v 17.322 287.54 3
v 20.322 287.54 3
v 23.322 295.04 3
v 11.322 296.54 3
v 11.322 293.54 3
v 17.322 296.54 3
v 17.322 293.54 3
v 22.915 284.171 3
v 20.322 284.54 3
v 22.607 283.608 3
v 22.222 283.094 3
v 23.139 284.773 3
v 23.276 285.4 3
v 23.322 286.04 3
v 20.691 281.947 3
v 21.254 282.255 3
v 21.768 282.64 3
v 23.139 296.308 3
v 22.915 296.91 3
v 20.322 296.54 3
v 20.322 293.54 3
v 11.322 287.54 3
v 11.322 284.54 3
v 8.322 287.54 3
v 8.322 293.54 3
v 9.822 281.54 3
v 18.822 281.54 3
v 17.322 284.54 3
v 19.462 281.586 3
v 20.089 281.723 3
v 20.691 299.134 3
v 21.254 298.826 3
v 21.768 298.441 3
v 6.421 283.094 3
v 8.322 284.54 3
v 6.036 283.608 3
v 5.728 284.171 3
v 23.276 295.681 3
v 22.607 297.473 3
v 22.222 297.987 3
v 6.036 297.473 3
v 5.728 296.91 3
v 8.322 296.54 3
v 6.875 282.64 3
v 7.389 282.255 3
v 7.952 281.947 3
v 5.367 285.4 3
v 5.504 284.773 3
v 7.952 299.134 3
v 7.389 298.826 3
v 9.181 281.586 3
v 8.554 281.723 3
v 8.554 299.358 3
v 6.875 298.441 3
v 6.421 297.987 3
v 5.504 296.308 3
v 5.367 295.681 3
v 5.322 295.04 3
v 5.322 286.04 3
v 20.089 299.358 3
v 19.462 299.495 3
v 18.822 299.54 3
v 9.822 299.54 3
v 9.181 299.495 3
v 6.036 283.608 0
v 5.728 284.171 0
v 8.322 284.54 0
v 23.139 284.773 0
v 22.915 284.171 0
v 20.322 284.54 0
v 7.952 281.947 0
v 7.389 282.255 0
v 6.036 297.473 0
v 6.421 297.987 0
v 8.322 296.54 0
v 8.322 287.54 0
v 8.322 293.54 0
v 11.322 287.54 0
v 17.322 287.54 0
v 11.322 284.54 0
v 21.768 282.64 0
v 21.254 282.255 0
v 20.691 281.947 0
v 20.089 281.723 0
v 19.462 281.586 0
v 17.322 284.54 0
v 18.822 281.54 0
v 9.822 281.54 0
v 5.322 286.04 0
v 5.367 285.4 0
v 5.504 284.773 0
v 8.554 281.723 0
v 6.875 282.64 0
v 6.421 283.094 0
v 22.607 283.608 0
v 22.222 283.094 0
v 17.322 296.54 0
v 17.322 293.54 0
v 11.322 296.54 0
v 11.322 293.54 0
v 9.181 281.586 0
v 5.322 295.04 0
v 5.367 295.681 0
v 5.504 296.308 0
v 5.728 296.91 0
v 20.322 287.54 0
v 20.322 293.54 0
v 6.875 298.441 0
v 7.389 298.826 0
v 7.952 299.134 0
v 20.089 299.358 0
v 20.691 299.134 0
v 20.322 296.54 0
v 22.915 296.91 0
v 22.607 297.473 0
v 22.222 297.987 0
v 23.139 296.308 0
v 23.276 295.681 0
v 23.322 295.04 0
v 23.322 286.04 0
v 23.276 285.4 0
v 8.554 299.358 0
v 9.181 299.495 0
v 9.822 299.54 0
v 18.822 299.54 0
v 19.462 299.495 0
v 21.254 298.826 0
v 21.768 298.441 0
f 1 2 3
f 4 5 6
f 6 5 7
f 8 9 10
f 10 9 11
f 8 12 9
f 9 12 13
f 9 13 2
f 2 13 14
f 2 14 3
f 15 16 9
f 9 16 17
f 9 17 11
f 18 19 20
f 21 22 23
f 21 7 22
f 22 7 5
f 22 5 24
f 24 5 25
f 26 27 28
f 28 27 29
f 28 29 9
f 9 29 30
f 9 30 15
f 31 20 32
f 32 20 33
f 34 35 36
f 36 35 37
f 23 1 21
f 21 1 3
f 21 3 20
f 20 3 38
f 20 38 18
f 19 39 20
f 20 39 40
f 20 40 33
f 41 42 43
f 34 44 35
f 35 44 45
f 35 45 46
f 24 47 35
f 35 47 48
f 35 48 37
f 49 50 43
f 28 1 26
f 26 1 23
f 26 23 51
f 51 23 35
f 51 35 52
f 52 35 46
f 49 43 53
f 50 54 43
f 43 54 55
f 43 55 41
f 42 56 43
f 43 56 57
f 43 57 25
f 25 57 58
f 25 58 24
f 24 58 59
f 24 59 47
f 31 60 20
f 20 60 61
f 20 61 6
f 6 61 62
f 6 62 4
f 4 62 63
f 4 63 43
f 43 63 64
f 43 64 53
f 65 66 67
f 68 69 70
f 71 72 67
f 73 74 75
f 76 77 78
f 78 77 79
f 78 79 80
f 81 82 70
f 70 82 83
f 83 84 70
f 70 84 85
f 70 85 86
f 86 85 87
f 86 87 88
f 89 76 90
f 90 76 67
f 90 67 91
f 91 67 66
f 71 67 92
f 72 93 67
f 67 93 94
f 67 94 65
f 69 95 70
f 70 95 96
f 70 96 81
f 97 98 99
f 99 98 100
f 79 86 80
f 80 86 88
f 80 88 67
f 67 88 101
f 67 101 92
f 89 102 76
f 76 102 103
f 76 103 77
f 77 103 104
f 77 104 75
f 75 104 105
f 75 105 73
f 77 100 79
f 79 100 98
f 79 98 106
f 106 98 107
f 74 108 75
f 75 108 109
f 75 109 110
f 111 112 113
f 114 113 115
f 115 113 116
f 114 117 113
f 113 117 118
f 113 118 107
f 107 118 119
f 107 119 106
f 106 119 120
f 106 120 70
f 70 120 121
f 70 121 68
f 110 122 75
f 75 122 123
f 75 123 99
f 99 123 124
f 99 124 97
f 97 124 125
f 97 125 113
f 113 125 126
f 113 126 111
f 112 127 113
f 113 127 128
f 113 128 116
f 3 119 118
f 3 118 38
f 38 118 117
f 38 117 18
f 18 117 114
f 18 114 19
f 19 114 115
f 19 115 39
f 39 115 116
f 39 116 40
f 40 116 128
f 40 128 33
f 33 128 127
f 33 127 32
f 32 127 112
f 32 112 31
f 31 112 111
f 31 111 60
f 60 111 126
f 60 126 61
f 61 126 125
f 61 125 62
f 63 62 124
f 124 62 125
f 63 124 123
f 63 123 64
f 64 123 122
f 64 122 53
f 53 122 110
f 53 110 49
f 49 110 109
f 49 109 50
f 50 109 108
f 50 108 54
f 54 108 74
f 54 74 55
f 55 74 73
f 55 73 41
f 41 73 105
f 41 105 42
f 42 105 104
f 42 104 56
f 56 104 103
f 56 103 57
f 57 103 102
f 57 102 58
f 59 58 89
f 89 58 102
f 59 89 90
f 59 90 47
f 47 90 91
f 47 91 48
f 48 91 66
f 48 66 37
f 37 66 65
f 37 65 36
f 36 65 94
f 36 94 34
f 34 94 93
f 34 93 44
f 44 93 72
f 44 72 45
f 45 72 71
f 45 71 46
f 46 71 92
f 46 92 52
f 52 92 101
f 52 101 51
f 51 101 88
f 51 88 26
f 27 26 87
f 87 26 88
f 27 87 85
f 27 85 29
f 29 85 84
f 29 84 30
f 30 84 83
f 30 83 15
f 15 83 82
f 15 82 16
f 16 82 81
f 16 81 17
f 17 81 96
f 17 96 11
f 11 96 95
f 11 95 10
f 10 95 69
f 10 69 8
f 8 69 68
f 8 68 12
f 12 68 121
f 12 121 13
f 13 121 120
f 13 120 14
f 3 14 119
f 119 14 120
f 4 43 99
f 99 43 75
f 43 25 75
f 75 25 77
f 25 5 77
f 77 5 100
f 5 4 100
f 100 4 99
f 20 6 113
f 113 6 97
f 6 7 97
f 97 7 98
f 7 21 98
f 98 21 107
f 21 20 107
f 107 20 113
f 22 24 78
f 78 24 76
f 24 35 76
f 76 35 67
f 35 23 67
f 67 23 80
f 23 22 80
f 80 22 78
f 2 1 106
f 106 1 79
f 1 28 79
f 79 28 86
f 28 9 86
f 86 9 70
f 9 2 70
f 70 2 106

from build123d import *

# Parameters (mm, degrees)
MODEL_W                 = 3
MODEL_H                 = 3
SALIENTE_EXTRUIR1_DEPTH = 3


with BuildPart() as part:
    # Model → Saliente-Extruir1 (new body)
    with BuildSketch(Plane.XY):
        with BuildLine():
            Line((9.821574141, 299.540447034), (18.821574141, 299.540447034))
            ThreePointArc((18.821574141, 299.540447034), (22.003554656, 298.222427549), (23.321574141, 295.040447034))
            Line((23.321574141, 295.040447034), (23.321574141, 286.040447034))
            ThreePointArc((23.321574141, 286.040447034), (22.003554656, 282.858466518), (18.821574141, 281.540447034))
            Line((18.821574141, 281.540447034), (9.821574141, 281.540447034))
            ThreePointArc((9.821574141, 281.540447034), (6.639593626, 282.858466518), (5.321574141, 286.040447034))
            Line((5.321574141, 286.040447034), (5.321574141, 295.040447034))
            ThreePointArc((5.321574141, 295.040447034), (6.639593626, 298.222427549), (9.821574141, 299.540447034))
        make_face()
        with Locations((9.821574141, 295.040447034)):
            Rectangle(MODEL_W, MODEL_H, mode=Mode.SUBTRACT)
        with Locations((18.821574141, 295.040447034)):
            Rectangle(MODEL_W, MODEL_H, mode=Mode.SUBTRACT)
        with Locations((9.821574141, 286.040447034)):
            Rectangle(MODEL_W, MODEL_H, mode=Mode.SUBTRACT)
        with Locations((18.821574141, 286.040447034)):
            Rectangle(MODEL_W, MODEL_H, mode=Mode.SUBTRACT)
    extrude(amount=SALIENTE_EXTRUIR1_DEPTH)


solid = part.part
